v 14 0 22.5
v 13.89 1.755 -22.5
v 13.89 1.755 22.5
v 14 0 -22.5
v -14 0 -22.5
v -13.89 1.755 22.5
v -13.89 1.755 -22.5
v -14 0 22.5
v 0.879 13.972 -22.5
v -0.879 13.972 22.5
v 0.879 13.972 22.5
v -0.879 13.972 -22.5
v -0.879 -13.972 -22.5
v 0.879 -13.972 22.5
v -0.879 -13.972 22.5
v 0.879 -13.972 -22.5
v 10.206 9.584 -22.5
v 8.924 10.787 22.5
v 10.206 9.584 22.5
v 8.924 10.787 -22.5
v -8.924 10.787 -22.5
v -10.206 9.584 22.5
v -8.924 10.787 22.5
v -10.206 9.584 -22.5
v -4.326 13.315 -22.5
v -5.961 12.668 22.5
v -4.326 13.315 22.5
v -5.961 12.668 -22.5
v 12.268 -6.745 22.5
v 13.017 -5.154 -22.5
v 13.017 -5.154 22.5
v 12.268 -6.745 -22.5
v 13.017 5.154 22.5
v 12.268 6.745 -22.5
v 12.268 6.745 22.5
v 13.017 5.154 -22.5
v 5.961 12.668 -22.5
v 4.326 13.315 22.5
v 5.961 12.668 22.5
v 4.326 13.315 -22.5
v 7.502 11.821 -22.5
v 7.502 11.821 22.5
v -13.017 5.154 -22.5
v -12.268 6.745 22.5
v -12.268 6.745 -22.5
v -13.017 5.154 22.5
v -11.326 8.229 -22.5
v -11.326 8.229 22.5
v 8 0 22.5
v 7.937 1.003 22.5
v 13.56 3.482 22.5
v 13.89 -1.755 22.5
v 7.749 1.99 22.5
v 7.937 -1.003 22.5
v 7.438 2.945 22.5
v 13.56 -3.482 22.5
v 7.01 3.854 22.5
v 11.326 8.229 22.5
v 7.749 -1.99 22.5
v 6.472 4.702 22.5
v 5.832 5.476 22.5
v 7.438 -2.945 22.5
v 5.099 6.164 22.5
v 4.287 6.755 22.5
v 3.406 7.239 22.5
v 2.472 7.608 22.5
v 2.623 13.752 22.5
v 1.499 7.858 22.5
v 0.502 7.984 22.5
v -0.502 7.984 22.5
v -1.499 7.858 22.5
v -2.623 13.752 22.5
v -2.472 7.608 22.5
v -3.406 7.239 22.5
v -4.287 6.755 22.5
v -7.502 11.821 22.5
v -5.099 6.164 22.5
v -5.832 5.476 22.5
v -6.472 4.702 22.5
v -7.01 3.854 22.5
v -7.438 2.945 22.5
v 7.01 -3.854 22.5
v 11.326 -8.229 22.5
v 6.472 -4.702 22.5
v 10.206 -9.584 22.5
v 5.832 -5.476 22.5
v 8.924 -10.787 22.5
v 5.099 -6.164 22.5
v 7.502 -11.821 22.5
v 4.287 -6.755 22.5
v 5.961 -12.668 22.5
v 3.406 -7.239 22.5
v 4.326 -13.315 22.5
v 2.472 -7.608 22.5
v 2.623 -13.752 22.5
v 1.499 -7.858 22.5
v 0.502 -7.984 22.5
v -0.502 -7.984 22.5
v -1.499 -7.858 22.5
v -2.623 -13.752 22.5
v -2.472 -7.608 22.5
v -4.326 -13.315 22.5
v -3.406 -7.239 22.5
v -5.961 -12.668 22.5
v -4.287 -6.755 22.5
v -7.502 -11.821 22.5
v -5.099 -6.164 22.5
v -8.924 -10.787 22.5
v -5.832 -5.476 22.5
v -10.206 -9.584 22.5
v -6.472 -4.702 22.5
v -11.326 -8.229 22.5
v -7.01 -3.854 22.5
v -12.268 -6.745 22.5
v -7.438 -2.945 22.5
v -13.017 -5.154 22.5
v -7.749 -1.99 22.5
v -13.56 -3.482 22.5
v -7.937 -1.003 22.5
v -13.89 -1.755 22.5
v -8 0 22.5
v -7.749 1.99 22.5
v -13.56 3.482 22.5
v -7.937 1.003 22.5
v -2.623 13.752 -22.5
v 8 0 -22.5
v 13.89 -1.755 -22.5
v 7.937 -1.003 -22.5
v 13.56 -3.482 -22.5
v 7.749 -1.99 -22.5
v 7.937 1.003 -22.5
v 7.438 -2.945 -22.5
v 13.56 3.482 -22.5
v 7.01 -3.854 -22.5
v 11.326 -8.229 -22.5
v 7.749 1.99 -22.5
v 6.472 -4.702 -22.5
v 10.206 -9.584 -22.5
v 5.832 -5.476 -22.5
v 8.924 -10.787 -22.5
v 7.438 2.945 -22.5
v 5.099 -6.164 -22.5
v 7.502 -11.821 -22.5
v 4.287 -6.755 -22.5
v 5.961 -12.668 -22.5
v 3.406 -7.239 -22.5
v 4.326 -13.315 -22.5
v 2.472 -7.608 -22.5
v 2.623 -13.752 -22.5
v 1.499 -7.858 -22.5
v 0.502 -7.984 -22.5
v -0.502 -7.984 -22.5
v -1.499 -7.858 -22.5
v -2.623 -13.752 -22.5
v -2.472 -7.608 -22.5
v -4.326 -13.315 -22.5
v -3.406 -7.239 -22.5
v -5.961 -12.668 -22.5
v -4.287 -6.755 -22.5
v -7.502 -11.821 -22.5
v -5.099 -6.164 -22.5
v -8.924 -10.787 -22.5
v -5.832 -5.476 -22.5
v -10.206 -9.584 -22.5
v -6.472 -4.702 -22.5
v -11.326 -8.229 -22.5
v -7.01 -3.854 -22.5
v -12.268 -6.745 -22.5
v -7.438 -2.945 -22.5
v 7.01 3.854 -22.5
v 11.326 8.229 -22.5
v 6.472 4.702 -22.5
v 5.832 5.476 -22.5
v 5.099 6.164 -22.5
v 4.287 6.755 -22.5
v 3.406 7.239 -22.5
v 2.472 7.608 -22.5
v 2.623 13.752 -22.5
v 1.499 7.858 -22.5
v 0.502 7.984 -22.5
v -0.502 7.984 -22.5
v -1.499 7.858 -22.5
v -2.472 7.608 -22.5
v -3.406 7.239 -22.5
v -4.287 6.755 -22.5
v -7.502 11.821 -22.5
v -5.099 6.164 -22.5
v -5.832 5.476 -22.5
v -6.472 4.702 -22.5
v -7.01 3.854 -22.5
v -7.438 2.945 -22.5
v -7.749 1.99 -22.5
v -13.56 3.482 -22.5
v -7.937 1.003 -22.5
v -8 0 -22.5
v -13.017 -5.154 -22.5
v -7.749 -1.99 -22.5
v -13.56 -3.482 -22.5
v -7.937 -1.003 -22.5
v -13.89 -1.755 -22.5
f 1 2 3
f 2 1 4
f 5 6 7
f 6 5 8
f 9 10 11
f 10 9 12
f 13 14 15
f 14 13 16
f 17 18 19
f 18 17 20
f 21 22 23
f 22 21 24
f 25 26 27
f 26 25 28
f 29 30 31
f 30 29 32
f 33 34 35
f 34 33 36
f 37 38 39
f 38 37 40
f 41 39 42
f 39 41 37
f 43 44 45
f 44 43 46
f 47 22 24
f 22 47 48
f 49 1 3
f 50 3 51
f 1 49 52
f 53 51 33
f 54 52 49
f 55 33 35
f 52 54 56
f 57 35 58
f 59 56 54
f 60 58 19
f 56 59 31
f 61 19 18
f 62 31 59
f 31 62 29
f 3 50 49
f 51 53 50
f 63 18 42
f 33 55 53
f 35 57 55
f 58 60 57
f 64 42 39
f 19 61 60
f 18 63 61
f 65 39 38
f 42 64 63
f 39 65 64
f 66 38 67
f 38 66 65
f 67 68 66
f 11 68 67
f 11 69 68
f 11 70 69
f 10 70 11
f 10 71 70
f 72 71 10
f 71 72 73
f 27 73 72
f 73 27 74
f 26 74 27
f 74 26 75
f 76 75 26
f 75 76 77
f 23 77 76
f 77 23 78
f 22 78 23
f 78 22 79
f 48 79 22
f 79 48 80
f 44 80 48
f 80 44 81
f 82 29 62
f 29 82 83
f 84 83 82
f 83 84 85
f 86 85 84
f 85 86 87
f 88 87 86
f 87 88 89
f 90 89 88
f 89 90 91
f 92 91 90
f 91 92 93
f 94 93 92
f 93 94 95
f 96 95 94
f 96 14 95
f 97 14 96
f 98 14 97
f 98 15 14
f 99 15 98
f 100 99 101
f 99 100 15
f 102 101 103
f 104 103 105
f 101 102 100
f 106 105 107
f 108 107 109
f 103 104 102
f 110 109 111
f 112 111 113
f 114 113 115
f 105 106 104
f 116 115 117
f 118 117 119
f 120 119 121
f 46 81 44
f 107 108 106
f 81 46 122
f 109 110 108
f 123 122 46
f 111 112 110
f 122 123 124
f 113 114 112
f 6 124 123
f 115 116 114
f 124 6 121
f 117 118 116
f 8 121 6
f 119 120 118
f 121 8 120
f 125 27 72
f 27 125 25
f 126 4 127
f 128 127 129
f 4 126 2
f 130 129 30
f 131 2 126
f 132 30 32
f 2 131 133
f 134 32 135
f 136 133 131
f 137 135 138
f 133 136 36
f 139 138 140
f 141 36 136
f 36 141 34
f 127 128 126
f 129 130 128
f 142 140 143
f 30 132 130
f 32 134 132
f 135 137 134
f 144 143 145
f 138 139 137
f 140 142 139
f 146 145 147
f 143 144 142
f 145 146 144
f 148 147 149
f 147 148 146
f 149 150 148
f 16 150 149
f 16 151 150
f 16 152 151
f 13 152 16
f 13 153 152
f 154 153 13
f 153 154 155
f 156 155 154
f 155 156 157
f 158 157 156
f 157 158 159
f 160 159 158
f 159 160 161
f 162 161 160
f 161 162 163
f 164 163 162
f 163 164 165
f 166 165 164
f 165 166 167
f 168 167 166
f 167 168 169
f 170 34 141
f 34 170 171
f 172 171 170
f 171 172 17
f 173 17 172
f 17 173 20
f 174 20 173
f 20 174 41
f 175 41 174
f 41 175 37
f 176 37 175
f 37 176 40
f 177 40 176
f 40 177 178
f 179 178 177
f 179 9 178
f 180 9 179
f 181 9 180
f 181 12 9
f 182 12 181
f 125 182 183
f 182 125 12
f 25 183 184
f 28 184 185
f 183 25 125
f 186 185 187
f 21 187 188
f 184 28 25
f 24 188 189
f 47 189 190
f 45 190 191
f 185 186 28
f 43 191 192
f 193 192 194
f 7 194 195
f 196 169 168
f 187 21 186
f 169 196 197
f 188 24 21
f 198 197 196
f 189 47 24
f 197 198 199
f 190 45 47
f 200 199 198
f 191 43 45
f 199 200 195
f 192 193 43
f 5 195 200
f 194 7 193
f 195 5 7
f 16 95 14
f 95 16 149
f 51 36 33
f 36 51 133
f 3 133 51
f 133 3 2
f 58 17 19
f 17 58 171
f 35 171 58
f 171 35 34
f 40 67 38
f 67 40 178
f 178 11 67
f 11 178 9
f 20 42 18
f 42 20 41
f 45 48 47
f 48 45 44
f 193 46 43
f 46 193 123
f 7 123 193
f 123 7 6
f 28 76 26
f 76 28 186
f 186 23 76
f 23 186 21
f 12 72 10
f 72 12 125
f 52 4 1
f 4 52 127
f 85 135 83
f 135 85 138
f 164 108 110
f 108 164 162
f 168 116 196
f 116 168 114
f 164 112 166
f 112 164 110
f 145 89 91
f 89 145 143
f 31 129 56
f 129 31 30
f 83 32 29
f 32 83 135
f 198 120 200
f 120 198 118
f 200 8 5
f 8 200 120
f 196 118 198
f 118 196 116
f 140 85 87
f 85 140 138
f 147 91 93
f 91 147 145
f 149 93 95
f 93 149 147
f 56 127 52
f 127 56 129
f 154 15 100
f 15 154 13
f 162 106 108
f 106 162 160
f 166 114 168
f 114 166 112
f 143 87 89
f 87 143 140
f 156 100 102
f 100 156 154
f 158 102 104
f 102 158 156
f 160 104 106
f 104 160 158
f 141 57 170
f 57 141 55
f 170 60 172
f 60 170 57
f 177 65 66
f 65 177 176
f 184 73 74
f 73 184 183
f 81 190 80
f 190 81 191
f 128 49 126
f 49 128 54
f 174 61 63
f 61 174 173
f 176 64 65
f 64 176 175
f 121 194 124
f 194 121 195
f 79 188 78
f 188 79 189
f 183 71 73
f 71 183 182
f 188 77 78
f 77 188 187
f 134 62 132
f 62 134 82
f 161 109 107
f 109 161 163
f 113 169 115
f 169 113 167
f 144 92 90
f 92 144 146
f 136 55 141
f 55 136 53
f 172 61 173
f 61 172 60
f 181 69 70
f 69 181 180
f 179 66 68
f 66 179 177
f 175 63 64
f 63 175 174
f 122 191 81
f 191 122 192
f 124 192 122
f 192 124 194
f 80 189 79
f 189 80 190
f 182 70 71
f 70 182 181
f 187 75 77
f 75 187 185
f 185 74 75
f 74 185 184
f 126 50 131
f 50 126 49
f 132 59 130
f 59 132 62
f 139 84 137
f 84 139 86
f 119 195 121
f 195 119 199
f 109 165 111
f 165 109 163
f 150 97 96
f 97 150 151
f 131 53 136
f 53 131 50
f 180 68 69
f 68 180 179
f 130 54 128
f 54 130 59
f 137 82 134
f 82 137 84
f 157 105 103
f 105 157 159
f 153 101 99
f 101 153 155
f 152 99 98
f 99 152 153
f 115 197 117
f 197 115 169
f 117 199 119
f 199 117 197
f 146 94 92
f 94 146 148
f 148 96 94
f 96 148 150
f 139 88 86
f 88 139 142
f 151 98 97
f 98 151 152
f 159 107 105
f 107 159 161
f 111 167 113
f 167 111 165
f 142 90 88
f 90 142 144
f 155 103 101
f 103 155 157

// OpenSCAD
$fn = 50;


difference() {
	union() {
		translate(v = [0, 0, -22.5000000000]) {
			cylinder(h = 45, r = 14.0000000000);
		}
	}
	union() {
		translate(v = [0, 0, -100.0000000000]) {
			cylinder(h = 200, r = 8);
		}
	}
}
